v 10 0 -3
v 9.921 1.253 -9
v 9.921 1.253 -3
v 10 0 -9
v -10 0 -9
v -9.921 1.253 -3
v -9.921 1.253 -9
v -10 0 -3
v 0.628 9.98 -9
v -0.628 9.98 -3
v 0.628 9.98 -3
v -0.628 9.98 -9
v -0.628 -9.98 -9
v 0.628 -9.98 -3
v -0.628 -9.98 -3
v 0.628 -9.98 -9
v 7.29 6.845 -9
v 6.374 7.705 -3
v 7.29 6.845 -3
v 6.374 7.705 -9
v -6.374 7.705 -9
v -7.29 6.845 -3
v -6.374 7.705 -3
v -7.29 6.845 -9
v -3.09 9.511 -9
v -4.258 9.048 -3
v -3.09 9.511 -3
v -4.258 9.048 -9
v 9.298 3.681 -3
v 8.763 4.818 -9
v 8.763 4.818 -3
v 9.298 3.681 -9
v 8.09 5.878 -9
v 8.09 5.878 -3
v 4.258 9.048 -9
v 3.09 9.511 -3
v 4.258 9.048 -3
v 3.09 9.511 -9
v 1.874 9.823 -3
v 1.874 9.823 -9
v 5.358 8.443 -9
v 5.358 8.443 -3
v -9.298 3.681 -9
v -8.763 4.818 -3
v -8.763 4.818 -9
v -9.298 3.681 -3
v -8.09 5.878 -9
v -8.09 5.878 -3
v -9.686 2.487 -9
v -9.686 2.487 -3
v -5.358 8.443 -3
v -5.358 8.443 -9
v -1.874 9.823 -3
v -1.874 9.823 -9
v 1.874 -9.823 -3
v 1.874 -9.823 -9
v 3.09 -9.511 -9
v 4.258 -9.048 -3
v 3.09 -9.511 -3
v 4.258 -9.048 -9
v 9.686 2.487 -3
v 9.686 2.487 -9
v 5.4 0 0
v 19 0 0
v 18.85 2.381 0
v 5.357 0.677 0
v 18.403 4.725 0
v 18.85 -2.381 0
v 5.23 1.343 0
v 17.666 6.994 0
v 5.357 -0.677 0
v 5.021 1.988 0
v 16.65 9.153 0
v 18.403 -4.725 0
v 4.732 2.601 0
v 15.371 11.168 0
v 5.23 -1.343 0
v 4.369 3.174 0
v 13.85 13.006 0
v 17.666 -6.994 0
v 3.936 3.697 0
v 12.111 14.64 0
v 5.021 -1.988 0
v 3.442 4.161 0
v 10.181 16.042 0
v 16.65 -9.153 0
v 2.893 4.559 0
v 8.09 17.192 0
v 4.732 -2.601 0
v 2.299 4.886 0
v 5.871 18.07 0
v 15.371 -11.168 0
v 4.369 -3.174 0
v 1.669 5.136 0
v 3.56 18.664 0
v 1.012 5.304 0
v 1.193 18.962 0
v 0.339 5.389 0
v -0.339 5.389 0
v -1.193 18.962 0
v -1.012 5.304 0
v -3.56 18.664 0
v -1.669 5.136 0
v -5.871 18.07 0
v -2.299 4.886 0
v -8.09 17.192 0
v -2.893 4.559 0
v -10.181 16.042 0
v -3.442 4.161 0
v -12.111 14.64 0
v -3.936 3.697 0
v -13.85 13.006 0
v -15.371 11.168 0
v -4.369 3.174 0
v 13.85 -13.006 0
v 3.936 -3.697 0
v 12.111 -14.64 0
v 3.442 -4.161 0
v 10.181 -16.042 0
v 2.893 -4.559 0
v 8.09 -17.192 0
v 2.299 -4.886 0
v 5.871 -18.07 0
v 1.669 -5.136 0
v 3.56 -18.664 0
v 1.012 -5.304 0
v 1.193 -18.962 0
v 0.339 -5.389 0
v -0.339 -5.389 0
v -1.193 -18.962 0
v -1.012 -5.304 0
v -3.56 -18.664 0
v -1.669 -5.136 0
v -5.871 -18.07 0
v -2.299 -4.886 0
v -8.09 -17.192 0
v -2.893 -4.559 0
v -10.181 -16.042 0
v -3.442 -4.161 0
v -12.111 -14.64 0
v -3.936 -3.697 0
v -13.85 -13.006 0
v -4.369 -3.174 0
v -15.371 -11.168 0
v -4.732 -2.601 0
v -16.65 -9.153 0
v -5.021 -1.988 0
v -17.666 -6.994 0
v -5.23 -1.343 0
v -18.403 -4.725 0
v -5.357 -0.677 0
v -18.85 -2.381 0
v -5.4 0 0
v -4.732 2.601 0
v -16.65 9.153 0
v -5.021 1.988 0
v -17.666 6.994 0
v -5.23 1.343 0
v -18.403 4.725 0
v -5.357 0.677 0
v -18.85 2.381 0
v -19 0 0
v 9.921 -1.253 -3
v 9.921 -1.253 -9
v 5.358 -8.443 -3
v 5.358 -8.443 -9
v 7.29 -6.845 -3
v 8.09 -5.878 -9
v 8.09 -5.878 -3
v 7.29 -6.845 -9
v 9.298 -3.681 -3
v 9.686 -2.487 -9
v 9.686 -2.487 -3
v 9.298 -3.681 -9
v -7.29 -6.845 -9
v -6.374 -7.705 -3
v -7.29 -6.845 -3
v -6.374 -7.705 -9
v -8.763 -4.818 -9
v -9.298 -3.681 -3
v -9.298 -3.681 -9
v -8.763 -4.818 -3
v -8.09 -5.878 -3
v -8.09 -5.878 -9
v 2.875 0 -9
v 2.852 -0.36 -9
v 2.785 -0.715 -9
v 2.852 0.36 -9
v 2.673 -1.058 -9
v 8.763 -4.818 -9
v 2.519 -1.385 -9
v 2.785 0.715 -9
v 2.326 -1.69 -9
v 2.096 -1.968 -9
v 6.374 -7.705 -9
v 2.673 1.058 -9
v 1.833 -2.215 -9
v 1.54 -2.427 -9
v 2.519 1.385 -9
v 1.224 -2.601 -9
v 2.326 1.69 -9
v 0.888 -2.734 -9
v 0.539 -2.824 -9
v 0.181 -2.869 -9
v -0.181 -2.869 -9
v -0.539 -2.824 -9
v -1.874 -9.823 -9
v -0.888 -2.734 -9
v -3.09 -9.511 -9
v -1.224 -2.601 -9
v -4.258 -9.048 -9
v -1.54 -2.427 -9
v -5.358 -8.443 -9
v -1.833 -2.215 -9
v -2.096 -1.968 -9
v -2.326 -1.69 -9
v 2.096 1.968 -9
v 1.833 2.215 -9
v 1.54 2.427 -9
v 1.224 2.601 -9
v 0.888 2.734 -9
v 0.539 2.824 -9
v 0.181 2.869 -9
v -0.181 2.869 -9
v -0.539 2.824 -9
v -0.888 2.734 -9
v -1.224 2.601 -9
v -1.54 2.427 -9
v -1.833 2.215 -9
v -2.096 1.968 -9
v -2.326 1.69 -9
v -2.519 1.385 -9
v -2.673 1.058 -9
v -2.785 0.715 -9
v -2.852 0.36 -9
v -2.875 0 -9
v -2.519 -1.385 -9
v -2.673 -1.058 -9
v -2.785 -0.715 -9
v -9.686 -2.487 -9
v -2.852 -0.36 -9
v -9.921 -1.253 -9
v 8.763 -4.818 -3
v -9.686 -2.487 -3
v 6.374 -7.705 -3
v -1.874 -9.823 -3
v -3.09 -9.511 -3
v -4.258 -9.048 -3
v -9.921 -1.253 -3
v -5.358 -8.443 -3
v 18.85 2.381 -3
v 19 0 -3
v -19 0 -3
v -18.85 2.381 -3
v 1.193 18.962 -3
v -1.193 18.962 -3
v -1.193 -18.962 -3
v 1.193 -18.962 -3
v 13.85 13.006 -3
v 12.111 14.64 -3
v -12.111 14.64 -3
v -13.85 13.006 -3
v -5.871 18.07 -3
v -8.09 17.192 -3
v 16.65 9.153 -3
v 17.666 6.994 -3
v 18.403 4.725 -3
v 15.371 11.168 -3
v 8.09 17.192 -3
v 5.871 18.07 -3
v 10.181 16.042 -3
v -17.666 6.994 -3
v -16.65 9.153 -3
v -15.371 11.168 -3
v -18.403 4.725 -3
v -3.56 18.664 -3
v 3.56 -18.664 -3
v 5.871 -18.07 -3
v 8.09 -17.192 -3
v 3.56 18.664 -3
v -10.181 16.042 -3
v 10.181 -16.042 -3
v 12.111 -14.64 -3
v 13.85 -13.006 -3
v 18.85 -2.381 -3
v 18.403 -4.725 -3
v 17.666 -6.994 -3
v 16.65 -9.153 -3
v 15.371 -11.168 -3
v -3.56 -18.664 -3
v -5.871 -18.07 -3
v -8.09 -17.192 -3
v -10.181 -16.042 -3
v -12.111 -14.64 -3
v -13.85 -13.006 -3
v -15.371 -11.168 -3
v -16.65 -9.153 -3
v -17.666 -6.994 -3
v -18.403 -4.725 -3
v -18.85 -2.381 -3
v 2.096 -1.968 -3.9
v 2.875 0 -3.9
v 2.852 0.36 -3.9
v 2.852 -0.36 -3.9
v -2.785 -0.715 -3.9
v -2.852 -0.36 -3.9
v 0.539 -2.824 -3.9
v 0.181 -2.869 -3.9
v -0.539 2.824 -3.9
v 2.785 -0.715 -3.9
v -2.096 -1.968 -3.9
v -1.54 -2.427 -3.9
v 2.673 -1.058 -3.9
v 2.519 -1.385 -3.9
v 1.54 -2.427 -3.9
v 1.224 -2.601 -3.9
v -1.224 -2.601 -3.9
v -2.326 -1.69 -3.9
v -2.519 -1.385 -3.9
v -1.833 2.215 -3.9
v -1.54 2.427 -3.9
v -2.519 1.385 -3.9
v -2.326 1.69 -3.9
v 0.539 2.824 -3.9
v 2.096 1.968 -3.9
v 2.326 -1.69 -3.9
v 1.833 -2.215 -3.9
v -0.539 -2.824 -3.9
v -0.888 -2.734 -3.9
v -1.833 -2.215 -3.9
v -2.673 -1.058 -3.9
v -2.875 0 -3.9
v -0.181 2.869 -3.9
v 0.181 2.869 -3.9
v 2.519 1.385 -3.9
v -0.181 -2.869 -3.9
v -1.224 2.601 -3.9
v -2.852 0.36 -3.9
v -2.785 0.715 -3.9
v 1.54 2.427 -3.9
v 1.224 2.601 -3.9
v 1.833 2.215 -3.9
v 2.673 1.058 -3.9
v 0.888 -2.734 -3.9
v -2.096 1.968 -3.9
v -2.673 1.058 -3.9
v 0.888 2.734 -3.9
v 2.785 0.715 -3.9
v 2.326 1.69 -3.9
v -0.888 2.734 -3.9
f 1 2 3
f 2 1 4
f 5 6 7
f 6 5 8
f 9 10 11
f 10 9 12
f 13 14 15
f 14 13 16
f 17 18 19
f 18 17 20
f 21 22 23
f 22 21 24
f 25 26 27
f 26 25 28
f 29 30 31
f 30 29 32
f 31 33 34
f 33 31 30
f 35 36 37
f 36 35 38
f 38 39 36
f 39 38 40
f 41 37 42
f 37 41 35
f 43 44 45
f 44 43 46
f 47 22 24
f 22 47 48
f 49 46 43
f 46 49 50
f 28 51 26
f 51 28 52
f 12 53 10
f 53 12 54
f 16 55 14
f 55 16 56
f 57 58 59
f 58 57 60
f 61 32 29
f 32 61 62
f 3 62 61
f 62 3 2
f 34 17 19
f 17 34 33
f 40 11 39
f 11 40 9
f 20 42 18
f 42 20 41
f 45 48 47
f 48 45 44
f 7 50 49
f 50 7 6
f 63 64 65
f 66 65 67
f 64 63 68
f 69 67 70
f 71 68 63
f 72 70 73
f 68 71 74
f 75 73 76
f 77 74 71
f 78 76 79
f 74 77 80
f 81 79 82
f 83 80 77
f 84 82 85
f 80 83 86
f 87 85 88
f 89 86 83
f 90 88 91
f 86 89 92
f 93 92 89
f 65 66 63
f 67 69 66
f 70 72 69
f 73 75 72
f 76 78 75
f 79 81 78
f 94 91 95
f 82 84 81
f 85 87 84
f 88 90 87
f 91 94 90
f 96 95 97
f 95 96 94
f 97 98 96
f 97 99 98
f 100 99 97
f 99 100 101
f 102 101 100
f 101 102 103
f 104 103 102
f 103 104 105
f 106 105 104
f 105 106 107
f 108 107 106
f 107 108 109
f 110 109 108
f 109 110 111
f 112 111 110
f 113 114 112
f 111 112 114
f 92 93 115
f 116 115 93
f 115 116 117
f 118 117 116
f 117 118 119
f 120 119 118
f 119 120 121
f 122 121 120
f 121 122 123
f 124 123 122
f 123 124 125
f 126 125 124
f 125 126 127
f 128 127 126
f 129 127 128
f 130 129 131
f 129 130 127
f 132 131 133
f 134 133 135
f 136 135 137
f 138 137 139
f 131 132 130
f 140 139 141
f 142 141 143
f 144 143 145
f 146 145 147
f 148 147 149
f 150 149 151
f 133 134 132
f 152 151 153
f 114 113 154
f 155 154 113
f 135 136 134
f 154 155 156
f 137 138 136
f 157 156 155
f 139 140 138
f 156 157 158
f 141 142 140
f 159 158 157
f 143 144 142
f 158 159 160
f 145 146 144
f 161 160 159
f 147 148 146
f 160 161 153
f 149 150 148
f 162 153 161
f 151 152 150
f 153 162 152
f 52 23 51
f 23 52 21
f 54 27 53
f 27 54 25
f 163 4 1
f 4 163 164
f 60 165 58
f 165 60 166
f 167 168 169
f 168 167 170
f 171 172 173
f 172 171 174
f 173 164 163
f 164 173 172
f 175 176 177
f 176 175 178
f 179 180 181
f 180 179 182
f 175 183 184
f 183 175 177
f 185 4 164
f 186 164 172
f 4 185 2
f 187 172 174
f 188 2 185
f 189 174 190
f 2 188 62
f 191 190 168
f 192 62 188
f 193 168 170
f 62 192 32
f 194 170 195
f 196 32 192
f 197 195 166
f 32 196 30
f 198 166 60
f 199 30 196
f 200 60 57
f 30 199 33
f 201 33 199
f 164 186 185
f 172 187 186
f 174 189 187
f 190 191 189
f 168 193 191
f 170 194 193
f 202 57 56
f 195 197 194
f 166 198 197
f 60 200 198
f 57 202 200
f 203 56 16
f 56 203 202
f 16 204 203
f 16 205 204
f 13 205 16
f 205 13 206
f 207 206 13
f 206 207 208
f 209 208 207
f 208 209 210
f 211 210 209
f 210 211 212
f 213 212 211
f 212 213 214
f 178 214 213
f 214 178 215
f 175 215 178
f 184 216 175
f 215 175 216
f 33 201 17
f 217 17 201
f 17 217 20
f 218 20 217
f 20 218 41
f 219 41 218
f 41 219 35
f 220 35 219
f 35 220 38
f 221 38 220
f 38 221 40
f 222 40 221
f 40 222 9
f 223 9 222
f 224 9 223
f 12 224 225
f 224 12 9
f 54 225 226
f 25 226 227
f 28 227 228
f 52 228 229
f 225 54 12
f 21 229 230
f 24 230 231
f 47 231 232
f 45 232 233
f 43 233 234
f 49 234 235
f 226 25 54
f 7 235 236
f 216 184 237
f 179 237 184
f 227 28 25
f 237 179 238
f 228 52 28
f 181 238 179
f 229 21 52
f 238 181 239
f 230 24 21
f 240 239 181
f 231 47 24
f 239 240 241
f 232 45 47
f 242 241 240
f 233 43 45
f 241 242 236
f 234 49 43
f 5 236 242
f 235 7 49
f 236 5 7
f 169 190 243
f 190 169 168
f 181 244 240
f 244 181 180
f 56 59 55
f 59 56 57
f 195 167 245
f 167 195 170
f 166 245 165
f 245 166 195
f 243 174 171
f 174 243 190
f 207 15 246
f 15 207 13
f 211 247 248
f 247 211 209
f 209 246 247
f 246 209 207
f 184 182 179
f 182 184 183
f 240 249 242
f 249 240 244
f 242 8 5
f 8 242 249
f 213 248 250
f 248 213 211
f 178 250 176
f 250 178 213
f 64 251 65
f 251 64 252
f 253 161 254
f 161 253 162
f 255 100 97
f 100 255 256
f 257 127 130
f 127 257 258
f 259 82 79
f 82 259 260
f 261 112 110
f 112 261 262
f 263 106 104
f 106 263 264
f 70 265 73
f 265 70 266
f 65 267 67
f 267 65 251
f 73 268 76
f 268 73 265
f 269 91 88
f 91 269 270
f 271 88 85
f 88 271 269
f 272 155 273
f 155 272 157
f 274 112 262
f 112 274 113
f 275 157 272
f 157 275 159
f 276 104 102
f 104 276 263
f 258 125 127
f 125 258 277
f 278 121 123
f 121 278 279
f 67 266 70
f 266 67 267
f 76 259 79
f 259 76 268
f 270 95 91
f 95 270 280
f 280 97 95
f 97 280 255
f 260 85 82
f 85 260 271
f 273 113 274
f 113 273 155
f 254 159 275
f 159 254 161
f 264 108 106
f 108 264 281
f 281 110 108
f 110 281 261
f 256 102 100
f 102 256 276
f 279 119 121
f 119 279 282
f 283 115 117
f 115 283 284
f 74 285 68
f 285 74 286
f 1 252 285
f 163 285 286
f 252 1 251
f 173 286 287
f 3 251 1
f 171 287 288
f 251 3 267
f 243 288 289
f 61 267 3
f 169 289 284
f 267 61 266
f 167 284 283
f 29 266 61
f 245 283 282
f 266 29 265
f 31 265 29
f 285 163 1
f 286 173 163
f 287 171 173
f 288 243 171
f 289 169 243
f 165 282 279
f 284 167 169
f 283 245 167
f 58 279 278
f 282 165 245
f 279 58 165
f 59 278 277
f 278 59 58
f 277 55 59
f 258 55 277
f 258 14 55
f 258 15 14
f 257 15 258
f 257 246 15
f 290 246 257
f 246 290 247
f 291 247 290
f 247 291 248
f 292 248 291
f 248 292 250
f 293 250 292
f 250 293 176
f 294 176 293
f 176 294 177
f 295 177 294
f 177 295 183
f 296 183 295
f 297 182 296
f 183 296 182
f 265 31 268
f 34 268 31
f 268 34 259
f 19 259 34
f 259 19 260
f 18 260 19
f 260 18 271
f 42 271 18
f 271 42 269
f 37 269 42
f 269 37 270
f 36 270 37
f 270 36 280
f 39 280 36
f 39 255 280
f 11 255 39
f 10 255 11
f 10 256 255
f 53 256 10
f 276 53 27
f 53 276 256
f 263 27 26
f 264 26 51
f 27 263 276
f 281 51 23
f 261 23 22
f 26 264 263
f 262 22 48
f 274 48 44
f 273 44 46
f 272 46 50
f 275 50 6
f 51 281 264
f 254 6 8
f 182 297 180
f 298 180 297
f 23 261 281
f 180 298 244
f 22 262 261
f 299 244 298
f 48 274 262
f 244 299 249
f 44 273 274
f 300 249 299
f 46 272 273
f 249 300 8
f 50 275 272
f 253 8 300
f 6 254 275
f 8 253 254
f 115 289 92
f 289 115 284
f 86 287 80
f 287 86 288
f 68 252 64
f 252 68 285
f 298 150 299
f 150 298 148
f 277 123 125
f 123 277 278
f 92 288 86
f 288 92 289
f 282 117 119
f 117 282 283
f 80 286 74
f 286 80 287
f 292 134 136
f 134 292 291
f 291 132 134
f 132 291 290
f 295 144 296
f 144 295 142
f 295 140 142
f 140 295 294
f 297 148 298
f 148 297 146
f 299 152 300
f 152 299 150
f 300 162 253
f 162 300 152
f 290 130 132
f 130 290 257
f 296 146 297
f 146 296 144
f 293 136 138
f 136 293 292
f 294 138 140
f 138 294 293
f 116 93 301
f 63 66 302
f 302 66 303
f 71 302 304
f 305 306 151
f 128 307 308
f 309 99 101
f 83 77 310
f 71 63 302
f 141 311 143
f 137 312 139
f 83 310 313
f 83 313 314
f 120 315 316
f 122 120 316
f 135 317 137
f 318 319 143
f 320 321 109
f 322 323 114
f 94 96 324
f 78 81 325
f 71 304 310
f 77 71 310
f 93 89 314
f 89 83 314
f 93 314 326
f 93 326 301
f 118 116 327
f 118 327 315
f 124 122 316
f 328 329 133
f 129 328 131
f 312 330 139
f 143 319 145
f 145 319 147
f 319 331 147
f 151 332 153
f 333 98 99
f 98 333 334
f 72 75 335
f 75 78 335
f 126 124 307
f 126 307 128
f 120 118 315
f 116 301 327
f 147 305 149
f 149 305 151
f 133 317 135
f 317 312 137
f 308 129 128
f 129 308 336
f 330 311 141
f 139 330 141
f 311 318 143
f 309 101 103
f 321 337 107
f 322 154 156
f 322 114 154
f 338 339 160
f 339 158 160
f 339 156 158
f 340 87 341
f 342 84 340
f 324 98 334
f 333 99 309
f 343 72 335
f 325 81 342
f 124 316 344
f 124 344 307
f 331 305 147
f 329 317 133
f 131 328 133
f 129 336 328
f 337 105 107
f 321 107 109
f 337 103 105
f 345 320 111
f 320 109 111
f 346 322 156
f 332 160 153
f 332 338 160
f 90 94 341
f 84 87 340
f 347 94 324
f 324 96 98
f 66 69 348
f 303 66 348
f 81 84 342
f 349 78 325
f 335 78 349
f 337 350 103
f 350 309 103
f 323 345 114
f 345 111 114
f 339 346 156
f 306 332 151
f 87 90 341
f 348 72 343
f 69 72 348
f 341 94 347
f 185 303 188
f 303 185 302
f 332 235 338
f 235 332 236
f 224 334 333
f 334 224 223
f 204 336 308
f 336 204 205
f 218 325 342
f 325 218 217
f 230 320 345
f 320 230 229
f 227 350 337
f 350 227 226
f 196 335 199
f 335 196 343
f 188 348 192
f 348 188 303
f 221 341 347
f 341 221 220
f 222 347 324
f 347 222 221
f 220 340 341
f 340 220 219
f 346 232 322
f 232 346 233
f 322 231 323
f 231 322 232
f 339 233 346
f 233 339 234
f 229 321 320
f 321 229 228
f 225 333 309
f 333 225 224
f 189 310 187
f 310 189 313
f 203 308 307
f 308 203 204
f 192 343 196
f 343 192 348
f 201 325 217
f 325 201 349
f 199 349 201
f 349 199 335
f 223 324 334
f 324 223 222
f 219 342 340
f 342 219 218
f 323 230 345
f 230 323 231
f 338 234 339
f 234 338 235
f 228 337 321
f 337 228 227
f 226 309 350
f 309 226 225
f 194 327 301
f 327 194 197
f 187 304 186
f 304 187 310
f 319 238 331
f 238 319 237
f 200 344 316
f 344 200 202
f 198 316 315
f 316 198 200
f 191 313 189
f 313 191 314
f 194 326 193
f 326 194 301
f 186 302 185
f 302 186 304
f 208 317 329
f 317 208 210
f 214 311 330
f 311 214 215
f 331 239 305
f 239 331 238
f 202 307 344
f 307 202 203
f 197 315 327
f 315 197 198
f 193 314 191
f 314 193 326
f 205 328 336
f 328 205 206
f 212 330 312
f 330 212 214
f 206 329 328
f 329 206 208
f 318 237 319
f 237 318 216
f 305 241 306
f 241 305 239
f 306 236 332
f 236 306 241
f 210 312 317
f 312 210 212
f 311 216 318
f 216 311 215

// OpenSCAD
$fn = 50;


difference() {
	union() {
		translate(v = [0, 0, -9.0000000000]) {
			cylinder(h = 9, r = 10.0000000000);
		}
		translate(v = [0, 0, -3.0000000000]) {
			cylinder(h = 3, r = 19.0000000000);
		}
	}
	union() {
		translate(v = [0, 0, 0]) {
			rotate(a = [0, 0, 0]) {
				difference() {
					union() {
						#translate(v = [0, 0, -9.0000000000]) {
							cylinder(h = 9, r = 2.6000000000);
						}
						#translate(v = [0, 0, -3.9000000000]) {
							cylinder(h = 3.9000000000, r1 = 2.8750000000, r2 = 5.4000000000);
						}
						#translate(v = [0, 0, -9.0000000000]) {
							cylinder(h = 9, r = 2.8750000000);
						}
						#translate(v = [0, 0, -9.0000000000]) {
							cylinder(h = 9, r = 2.6000000000);
						}
					}
					union();
				}
			}
		}
	}
}
